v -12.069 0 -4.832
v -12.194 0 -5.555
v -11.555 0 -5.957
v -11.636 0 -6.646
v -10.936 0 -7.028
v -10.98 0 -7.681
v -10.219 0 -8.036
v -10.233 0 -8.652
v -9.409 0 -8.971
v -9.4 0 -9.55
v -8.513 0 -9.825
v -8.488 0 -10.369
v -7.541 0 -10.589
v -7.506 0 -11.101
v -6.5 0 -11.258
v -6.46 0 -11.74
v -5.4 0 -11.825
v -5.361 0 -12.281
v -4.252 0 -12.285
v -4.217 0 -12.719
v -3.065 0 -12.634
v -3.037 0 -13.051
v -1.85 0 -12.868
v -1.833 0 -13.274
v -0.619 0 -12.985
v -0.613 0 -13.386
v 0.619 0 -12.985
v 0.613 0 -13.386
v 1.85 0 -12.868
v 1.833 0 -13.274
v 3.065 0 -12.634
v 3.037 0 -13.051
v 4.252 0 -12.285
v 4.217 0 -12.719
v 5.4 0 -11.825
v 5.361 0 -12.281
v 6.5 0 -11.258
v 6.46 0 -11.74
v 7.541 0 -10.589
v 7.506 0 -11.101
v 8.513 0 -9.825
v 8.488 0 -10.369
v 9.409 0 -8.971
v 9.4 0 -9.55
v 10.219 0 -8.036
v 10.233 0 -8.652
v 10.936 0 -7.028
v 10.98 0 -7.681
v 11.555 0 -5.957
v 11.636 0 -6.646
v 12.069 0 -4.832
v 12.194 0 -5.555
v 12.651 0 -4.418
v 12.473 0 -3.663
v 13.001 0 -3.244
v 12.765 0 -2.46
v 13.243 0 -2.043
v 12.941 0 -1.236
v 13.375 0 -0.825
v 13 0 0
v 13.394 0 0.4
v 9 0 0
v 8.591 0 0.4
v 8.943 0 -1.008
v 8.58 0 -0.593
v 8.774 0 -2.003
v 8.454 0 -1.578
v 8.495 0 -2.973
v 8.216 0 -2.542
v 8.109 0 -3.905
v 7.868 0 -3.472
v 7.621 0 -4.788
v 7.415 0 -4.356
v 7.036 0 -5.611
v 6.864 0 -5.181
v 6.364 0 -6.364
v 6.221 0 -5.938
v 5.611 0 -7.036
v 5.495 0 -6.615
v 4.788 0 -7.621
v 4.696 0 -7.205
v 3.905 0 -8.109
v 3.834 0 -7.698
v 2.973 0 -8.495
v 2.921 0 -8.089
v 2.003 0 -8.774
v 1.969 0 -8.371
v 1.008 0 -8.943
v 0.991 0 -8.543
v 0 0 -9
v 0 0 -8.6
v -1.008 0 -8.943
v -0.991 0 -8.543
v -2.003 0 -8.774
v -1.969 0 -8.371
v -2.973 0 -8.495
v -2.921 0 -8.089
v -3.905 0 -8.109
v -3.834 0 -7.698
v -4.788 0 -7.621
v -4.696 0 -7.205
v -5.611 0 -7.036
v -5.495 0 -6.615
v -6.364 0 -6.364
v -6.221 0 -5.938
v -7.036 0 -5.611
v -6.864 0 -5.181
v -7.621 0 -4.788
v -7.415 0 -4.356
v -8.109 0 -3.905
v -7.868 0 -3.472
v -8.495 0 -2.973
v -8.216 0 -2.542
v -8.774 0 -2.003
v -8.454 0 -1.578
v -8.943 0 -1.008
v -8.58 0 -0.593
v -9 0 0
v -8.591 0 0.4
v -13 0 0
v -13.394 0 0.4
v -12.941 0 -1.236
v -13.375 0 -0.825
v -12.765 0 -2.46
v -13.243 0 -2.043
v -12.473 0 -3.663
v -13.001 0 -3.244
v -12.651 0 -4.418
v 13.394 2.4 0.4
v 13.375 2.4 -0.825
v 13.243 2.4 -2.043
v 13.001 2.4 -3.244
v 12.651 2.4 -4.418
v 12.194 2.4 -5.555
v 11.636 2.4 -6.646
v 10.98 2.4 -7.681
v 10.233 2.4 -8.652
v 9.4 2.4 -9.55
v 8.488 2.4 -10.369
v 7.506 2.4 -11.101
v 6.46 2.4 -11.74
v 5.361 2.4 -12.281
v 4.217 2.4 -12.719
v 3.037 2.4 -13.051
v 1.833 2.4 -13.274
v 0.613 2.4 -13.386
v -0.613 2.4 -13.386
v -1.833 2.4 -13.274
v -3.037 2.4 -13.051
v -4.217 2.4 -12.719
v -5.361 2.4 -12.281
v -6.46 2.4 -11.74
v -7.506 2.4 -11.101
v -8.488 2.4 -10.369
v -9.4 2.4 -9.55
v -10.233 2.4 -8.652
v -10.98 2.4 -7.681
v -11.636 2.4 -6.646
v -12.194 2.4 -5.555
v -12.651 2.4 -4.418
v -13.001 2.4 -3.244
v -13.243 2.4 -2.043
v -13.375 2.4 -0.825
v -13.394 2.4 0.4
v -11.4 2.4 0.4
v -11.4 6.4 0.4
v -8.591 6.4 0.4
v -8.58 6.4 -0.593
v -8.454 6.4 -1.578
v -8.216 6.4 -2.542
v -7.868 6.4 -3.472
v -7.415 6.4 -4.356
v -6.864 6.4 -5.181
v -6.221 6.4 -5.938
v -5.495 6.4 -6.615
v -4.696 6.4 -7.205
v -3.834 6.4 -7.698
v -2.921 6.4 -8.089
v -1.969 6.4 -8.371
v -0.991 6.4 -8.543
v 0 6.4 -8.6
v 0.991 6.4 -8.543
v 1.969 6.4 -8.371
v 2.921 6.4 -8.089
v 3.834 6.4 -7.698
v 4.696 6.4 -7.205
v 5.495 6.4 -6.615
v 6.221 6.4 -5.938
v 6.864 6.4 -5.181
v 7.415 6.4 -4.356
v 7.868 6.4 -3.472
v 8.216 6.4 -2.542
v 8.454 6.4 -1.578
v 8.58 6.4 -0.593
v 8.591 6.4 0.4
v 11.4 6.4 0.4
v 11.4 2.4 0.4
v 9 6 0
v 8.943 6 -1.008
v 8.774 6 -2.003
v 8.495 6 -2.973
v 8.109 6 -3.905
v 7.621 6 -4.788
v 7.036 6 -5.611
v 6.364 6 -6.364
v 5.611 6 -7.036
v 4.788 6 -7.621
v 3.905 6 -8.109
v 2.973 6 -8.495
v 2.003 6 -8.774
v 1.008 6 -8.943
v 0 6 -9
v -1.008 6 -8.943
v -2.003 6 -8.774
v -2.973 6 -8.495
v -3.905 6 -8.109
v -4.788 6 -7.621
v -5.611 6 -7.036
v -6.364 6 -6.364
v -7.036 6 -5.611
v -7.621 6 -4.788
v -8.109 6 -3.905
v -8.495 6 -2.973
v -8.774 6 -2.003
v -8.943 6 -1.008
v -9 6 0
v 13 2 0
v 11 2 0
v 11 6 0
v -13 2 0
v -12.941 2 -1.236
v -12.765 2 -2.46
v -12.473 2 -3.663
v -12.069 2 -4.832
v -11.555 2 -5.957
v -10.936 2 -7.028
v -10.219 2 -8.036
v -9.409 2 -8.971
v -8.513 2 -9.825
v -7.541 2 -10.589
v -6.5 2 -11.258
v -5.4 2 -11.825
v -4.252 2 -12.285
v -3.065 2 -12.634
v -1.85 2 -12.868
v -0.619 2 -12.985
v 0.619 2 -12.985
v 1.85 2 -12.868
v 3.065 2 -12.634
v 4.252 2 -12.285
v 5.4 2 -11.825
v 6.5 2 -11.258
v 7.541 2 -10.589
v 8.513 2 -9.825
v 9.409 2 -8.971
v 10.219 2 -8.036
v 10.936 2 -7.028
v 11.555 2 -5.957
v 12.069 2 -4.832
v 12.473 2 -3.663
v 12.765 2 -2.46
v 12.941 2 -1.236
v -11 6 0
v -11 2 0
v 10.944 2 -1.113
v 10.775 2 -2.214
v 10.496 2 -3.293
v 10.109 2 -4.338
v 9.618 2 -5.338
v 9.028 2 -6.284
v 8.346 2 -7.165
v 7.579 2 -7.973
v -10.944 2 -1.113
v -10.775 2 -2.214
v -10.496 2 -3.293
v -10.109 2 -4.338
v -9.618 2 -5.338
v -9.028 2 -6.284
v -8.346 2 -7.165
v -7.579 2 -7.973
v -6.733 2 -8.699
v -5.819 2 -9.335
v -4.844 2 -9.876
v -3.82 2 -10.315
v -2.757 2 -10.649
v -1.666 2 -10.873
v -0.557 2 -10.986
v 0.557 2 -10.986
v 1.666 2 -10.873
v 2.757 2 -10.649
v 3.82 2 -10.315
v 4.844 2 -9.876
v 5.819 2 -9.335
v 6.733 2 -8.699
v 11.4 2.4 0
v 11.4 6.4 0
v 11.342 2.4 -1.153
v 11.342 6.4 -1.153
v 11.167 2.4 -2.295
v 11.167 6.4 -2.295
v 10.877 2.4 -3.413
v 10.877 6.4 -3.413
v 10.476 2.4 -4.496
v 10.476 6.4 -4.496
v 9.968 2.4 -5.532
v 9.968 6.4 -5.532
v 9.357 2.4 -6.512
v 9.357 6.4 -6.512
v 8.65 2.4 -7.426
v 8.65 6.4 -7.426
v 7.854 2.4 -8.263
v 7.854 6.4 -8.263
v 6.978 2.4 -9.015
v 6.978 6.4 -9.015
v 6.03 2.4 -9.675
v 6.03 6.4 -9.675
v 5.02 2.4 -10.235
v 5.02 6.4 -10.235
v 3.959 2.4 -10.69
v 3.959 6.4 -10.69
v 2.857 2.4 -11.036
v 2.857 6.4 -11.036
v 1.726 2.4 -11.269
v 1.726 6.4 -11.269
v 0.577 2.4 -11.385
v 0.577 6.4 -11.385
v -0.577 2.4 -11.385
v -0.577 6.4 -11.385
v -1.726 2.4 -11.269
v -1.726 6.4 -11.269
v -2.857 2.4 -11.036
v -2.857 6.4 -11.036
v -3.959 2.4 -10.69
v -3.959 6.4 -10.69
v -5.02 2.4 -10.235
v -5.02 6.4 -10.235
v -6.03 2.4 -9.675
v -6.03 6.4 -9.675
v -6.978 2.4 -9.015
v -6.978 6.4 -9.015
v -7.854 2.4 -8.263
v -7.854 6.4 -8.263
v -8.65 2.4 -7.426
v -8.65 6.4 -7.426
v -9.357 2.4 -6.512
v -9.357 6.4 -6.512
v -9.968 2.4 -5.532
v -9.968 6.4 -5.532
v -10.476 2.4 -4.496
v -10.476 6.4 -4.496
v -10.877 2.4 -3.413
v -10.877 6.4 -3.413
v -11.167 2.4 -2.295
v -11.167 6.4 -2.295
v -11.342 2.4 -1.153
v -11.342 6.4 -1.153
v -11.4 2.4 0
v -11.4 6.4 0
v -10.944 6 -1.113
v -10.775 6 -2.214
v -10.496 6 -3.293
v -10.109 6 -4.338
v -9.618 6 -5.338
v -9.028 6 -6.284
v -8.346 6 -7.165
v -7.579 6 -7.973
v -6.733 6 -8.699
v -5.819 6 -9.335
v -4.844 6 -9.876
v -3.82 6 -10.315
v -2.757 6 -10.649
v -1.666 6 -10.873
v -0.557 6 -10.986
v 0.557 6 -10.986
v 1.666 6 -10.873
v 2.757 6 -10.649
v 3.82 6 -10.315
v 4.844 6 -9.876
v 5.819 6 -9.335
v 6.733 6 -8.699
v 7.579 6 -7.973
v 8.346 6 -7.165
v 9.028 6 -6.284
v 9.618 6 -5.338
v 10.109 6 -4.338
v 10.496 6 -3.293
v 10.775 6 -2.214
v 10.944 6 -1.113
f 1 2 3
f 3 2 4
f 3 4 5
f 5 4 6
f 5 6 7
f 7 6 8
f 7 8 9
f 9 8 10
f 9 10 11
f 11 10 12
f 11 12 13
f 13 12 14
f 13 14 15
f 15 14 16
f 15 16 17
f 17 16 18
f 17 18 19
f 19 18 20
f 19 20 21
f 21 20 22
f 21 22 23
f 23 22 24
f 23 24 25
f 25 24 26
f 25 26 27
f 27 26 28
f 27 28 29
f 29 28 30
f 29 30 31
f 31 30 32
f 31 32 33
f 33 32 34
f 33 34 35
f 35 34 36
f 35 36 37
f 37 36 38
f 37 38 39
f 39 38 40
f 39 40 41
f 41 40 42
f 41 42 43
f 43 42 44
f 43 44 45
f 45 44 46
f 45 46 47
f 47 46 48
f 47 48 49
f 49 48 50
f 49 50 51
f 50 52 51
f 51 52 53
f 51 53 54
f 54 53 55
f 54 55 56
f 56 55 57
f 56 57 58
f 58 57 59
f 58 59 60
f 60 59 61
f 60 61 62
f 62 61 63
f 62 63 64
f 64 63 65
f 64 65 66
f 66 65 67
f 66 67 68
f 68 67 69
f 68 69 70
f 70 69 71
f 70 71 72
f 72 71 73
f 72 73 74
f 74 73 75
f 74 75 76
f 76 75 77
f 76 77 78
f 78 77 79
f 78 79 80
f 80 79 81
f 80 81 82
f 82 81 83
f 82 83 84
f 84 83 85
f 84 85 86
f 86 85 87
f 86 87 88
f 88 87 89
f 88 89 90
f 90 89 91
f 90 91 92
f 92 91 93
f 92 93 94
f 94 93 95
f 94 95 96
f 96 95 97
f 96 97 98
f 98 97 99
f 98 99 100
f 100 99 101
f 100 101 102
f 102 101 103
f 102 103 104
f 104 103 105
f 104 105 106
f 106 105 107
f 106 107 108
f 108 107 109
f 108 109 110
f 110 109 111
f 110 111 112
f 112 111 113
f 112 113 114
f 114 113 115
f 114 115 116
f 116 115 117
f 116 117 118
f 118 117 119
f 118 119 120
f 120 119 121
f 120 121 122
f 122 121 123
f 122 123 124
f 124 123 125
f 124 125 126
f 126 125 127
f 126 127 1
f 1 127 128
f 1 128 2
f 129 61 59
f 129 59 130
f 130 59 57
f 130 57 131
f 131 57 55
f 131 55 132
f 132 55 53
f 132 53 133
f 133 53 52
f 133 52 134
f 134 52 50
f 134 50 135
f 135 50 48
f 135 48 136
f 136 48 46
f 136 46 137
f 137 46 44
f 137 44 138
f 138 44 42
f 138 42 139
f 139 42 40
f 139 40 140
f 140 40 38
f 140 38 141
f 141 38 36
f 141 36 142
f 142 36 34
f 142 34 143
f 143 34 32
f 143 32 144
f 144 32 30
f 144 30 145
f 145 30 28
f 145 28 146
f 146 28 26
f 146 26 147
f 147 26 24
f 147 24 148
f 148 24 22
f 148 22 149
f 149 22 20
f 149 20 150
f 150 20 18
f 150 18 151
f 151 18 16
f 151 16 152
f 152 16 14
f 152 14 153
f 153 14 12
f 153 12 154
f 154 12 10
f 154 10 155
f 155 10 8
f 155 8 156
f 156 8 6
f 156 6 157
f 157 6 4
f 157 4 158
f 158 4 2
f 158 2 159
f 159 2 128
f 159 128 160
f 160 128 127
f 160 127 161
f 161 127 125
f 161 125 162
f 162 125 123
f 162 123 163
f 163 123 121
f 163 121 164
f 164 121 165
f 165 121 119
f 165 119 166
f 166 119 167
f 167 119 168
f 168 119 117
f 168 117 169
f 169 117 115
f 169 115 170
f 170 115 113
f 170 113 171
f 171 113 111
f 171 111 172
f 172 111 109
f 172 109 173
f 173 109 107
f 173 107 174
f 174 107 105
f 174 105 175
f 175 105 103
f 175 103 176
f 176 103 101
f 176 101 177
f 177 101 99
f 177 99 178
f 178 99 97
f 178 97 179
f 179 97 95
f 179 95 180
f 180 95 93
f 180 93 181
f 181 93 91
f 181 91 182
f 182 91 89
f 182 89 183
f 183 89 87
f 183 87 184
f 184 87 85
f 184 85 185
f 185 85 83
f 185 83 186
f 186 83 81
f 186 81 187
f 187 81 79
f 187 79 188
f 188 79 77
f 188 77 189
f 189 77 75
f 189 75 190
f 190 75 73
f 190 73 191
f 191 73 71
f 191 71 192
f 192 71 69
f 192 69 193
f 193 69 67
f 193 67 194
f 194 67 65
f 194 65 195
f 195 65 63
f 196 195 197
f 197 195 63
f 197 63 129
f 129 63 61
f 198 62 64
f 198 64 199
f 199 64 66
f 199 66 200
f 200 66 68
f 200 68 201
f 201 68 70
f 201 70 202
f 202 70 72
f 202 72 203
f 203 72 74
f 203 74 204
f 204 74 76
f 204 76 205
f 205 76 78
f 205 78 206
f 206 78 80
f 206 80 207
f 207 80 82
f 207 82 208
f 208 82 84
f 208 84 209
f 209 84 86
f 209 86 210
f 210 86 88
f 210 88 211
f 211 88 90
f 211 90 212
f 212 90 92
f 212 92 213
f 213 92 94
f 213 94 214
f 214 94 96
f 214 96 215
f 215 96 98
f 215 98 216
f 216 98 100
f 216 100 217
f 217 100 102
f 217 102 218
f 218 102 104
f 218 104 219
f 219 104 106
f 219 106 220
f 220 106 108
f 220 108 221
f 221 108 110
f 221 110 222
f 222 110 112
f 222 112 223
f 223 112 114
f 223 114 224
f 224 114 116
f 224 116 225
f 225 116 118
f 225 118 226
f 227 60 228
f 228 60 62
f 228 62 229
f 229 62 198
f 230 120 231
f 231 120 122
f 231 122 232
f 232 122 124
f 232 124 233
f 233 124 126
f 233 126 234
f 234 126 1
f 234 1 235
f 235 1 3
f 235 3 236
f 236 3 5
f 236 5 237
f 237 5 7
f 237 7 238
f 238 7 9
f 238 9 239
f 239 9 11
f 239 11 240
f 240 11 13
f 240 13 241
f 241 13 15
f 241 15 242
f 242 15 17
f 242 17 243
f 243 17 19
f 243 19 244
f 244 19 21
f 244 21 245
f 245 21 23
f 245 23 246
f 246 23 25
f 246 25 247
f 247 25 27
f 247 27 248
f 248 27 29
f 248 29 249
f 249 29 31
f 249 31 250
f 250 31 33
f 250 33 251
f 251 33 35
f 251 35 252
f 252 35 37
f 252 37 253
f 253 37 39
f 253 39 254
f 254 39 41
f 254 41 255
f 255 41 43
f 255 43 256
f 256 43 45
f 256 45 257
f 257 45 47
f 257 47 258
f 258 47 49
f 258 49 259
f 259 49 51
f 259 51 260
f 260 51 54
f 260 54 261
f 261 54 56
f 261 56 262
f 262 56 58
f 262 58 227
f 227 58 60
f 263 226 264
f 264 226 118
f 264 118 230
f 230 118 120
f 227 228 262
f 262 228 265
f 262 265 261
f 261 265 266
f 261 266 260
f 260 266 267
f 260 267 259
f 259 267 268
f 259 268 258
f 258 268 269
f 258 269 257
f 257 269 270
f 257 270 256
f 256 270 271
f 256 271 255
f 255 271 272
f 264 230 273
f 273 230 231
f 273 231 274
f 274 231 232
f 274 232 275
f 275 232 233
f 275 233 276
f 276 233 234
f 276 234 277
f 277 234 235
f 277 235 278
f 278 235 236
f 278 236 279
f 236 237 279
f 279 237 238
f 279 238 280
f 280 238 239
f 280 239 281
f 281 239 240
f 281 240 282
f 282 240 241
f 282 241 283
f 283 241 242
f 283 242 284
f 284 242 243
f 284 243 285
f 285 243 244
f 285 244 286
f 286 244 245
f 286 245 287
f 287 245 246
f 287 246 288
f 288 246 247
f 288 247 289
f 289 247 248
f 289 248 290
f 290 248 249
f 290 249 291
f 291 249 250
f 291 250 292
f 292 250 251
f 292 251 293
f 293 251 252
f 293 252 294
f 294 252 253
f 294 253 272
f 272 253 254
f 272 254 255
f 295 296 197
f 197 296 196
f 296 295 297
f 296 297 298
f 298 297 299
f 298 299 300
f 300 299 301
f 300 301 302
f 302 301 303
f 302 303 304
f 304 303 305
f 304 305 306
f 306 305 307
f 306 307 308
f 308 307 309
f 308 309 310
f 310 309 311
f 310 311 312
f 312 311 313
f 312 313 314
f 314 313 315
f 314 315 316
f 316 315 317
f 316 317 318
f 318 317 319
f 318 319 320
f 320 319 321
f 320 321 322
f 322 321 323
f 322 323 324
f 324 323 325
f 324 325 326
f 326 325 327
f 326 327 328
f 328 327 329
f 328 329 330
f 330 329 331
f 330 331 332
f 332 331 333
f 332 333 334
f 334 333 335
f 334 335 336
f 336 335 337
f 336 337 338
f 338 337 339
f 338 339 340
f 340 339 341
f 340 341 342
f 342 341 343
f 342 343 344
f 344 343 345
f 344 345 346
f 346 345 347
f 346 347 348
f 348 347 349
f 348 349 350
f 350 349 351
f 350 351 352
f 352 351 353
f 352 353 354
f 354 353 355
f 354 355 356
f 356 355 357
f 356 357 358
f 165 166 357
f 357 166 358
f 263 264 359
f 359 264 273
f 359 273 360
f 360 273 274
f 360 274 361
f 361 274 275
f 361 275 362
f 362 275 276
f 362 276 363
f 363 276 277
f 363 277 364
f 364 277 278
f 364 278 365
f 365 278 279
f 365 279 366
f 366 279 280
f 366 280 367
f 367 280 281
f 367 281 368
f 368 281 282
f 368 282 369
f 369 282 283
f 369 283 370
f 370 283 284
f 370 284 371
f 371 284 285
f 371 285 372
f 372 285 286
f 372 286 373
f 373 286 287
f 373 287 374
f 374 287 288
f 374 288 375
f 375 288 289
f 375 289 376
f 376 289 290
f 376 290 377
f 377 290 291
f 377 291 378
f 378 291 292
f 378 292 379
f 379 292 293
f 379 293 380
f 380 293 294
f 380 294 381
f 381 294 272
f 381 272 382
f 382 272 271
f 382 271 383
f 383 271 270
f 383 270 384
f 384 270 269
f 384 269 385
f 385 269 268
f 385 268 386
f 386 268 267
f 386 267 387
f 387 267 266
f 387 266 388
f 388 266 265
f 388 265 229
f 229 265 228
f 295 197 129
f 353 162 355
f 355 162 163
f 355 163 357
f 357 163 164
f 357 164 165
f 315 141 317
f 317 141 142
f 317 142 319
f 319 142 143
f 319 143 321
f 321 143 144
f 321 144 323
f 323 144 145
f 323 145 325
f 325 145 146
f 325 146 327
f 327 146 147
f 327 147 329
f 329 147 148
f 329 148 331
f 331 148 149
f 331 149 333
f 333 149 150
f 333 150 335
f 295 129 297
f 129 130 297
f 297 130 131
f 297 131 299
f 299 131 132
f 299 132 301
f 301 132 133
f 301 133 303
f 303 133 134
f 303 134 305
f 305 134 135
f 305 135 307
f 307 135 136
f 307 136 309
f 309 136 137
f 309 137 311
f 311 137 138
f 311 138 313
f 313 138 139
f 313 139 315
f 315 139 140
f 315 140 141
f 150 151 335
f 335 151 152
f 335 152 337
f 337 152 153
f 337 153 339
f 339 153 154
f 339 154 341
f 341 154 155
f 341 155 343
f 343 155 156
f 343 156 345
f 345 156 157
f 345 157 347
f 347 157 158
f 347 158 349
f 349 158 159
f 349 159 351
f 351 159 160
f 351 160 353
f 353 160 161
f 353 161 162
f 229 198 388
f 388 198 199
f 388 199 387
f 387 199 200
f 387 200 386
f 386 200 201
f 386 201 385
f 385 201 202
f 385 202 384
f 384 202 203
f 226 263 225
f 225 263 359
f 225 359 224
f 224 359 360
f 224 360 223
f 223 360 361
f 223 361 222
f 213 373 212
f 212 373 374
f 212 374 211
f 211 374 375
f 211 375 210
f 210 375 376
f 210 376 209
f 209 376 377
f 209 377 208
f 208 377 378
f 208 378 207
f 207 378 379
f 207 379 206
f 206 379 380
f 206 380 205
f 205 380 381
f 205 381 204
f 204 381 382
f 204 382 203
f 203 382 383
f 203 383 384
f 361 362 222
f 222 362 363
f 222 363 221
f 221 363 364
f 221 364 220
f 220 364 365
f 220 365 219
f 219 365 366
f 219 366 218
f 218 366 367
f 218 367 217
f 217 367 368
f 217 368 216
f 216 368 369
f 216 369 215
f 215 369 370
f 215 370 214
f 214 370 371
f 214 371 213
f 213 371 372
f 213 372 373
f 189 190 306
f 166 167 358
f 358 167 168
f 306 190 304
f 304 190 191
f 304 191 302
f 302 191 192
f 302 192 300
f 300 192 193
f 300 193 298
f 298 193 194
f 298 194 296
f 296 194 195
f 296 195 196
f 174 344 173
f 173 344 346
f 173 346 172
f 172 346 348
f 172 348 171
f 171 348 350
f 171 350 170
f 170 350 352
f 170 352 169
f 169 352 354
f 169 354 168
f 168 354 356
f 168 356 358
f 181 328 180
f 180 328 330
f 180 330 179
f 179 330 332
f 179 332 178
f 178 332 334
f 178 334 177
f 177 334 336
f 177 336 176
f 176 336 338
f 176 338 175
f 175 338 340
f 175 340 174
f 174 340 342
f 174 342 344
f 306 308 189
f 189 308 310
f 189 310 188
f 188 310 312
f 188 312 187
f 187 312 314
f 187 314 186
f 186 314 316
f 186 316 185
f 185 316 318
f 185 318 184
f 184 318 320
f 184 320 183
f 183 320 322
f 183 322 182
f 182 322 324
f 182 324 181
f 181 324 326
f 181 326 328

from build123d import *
from build123d.topology import SkipClean

# Parameters (mm, degrees)
BOSS_EXTRUDE2_DEPTH = 2
BOSS_EXTRUDE3_DEPTH = 4
BOSS_EXTRUDE4_DEPTH = 0.4
BOSS_EXTRUDE6_DEPTH = 0.4


with BuildPart() as part:
    # Sketch4 → Boss-Extrude2 (new body)
    with BuildSketch(Plane(origin=(0, 0, 0), x_dir=(1, 0, 0), z_dir=(0, 1, 0))):
        with BuildLine():
            Line((-13.39402852, -0.4), (-8.590692638, -0.4))
            ThreePointArc((-8.590692638, -0.4), (0, 8.6), (8.590692638, -0.4))
            Line((8.590692638, -0.4), (13.39402852, -0.4))
            ThreePointArc((13.39402852, -0.4), (0, 13.4), (-13.39402852, -0.4))
        make_face()
        with BuildLine():
            Line((9, 0), (13, 0))
            ThreePointArc((13, 0), (0, 13), (-13, 0))
            Line((-13, 0), (-9, 0))
            ThreePointArc((-9, 0), (0, 9), (9, 0))
        make_face(mode=Mode.SUBTRACT)
    extrude(amount=BOSS_EXTRUDE2_DEPTH)

    # Sketch5 → Boss-Extrude3 (add)
    with BuildSketch(Plane(origin=(0, 2, 0), x_dir=(1, 0, 0), z_dir=(0, 1, 0))):
        with BuildLine():
            Line((-11.4, 0), (-11.4, -0.4))
            Line((-11.4, -0.4), (-8.590692638, -0.4))
            ThreePointArc((-8.590692638, -0.4), (0, 8.6), (8.590692638, -0.4))
            Line((8.590692638, -0.4), (11.4, -0.4))
            Line((11.4, -0.4), (11.4, 0))
            ThreePointArc((11.4, 0), (0, 11.4), (-11.4, 0))
        make_face()
        with BuildLine():
            Line((-11, 0), (-9, 0))
            ThreePointArc((-9, 0), (0, 9), (9, 0))
            Line((9, 0), (11, 0))
            ThreePointArc((11, 0), (0, 11), (-11, 0))
        make_face(mode=Mode.SUBTRACT)
    extrude(amount=BOSS_EXTRUDE3_DEPTH)

    # Sketch6 → Boss-Extrude4 (add)
    with BuildSketch(Plane(origin=(0, 2, 0), x_dir=(1, 0, 0), z_dir=(0, 1, 0))):
        with BuildLine():
            Line((-13.39402852, -0.4), (-11.4, -0.4))
            Line((-11.4, -0.4), (-11.4, 0))
            ThreePointArc((-11.4, 0), (0, 11.4), (11.4, 0))
            Line((11.4, 0), (11.4, -0.4))
            Line((11.4, -0.4), (13.39402852, -0.4))
            ThreePointArc((13.39402852, -0.4), (0, 13.4), (-13.39402852, -0.4))
        make_face()
    extrude(amount=BOSS_EXTRUDE4_DEPTH)

    # Sketch8 → Boss-Extrude6 (add)
    with SkipClean():  # the faces are left unmerged after this step: merging them gives an invalid solid
        with BuildSketch(Plane(origin=(0, 6, 0), x_dir=(1, 0, 0), z_dir=(0, 1, 0))):
            with BuildLine():
                Line((11.4, 0), (11.4, -0.4))
                Line((11.4, -0.4), (8.590692638, -0.4))
                ThreePointArc((8.590692638, -0.4), (0, 8.6), (-8.590692638, -0.4))
                Line((-8.590692638, -0.4), (-11.4, -0.4))
                Line((-11.4, -0.4), (-11.4, 0))
                ThreePointArc((-11.4, 0), (0, 11.4), (11.4, 0))
            make_face()
        extrude(amount=BOSS_EXTRUDE6_DEPTH)


solid = part.part
